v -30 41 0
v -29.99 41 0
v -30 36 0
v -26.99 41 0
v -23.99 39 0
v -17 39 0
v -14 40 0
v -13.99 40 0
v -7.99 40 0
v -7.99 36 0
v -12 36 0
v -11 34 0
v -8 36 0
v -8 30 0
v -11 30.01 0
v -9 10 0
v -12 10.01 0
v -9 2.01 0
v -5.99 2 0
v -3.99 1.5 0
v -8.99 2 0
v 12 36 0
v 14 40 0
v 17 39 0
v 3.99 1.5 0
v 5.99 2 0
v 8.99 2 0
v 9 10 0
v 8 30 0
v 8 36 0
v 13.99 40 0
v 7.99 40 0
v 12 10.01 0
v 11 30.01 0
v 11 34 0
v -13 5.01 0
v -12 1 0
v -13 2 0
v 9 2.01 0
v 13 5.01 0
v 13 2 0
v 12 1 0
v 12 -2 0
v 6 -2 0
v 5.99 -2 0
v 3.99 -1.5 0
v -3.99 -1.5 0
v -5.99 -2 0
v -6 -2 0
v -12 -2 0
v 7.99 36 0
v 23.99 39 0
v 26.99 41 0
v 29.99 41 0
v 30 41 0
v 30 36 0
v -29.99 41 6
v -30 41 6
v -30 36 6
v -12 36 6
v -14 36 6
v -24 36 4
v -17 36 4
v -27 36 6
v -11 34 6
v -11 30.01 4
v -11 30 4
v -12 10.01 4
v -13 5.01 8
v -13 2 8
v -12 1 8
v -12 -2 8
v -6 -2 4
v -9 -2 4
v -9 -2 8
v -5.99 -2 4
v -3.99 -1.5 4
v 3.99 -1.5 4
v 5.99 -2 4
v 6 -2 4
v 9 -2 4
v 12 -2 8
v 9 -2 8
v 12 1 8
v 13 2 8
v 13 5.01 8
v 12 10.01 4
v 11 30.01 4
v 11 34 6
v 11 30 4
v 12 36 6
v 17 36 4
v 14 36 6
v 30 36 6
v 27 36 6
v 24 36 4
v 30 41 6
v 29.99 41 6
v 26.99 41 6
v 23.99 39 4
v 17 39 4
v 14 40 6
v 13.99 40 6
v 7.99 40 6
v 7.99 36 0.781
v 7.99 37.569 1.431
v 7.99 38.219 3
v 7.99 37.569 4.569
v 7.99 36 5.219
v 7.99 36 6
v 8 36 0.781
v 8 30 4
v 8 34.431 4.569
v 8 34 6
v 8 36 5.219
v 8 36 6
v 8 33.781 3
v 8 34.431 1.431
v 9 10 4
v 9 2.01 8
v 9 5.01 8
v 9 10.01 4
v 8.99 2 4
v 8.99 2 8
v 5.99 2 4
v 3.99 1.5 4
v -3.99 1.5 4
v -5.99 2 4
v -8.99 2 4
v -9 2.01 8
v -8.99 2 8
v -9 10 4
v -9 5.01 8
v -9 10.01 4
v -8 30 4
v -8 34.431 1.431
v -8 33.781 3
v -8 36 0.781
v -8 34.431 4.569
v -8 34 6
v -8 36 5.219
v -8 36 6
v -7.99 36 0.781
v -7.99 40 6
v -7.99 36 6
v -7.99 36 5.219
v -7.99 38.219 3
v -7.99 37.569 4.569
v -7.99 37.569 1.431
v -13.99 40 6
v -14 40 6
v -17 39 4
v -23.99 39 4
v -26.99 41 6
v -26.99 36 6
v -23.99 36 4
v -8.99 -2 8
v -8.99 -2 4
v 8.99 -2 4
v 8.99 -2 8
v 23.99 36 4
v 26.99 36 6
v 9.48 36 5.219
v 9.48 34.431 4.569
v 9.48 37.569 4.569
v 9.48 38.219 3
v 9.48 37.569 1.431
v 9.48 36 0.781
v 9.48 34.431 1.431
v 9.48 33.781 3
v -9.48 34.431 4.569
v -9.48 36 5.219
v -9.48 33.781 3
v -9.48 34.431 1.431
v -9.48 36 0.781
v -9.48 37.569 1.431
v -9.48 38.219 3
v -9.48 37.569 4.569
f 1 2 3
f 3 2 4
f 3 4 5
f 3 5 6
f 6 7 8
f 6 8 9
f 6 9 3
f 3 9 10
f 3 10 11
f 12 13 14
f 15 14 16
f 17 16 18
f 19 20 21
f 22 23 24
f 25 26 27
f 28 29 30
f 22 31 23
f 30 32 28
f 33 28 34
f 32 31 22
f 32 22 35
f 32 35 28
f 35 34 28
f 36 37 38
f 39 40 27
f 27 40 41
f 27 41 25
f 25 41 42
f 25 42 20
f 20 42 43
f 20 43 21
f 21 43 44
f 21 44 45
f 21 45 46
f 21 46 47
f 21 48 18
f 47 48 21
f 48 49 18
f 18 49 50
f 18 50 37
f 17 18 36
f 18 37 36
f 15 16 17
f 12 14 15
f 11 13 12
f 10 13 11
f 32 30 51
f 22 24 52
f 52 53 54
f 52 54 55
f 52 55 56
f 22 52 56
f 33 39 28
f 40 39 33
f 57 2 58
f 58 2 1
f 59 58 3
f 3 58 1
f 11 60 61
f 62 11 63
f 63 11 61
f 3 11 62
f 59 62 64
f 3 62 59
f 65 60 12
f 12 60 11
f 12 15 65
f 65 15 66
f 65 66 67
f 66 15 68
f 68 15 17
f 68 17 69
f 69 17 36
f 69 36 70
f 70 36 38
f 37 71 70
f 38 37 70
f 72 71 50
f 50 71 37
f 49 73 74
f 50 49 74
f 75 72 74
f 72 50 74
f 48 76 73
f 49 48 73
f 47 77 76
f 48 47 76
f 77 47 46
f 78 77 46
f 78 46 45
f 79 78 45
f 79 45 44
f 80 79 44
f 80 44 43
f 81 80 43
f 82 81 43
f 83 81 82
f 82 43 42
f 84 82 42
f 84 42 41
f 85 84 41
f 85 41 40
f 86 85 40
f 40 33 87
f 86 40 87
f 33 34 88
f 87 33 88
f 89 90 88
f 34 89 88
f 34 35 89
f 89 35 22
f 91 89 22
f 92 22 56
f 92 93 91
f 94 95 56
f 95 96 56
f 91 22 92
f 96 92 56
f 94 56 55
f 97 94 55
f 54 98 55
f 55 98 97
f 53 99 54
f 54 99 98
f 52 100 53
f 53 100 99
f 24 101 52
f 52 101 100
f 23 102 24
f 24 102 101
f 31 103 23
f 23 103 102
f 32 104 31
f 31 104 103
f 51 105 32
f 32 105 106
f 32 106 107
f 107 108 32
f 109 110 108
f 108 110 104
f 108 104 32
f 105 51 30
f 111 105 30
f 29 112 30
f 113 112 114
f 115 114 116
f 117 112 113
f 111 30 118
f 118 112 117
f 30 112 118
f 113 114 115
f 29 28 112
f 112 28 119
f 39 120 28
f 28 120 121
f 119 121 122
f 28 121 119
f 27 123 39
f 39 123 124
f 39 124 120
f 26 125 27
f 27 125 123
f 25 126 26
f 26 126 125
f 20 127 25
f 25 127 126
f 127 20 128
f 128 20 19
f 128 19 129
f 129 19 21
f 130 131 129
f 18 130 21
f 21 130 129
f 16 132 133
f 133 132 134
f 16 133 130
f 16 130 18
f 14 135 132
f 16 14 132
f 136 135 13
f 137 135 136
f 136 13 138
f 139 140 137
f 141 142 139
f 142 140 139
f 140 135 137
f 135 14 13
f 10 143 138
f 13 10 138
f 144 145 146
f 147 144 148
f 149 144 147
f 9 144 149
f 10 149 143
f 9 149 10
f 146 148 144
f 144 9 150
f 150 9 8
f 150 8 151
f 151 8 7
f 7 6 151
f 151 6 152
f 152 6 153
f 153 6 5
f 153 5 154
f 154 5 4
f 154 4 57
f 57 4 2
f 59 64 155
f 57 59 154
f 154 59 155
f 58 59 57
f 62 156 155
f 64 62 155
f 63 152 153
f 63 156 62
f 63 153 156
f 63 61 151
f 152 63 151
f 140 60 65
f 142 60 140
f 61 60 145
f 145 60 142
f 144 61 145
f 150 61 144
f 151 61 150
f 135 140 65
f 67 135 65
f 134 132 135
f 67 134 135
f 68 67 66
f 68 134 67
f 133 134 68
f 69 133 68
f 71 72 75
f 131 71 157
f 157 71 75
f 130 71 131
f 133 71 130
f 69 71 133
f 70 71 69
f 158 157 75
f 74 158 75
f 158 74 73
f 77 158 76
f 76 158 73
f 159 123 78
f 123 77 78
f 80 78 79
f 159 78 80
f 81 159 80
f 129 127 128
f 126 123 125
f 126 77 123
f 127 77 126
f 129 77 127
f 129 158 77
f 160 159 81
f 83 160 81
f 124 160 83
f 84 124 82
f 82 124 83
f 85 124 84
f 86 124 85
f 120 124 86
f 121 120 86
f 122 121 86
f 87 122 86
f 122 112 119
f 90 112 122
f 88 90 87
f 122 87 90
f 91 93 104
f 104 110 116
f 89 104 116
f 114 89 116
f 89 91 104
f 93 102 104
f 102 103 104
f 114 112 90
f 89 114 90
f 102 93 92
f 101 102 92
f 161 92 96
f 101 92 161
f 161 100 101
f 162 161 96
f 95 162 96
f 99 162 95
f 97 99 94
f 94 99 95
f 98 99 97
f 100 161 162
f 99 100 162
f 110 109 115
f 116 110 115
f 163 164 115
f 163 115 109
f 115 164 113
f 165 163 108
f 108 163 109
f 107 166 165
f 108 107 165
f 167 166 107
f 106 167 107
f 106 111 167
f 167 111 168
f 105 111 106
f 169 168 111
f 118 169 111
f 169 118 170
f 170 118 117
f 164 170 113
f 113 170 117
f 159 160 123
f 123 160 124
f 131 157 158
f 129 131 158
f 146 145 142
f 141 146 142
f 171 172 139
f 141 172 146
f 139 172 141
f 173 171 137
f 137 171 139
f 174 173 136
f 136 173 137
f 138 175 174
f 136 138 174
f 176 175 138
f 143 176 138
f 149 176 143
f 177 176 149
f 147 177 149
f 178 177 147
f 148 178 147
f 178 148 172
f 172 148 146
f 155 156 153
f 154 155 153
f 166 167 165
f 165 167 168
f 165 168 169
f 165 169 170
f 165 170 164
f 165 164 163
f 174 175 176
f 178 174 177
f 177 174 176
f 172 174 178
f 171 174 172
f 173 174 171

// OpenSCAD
// file: beams.scad
/* 
 * openscad beams library
 * create complex openscads objects from frames which are defining beams
 * (constructed like a ship body or airplane hull)
 *
 * https://github.com/Stemer114/openscad_beams
 * http://www.thingiverse.com/Stemer114/designs
 * 
 *    Copyright (C) 2016 Stemer114 (stemer114@merunka.de)
 *
 *    This program is free software: you can redistribute it and/or modify
 *    it under the terms of the GNU General Public License as published by
 *    the Free Software Foundation, either version 3 of the License, or
 *    (at your option) any later version.
 *
 *    This program is distributed in the hope that it will be useful,
 *    but WITHOUT ANY WARRANTY; without even the implied warranty of
 *    MERCHANTABILITY or FITNESS FOR A PARTICULAR PURPOSE.  See the
 *    GNU General Public License for more details.
 *
 *    You should have received a copy of the GNU General Public License
 *    along with this program.  If not, see <http://www.gnu.org/licenses/>.
 *

 * Credits: 
 *          for some of the examples
 *          MCAD Library - Polyholes Copyright 2011 Nophead (of RepRap fame)
 *          It is licensed under the terms of Creative Commons Attribution 3.0 Unported.
 *          https://github.com/SolidCode/MCAD/blob/master/polyholes.scad
 *
 *          BeamsVersion, libEcho and code structure inspired by 
 *          OpenSCAD Parts Library by randyy is licensed under the GNU - LGPL license. 
 *          http://www.thingiverse.com/thing:6021
 *
 */

//**** house keeping
//we define these as functions to avoid assignment problems from caller modules
function BeamsVersion() = 1.0;  //library version
function ep()=0.01;  //epsilon environment to avoid non-manifold objects


//**** module definitions

// a single rectangular frame, usually very thin
// params: w - width of frame (x direction)
//         h - height of frame (z direction)
//         d - thickness of frame (y direction, usually very thin, e.g. 0.1mm)
//         o - offset vector from origin (probably best to use x and y offsets only here for starters)
//         r - rotation vector (probably best to use only z rotation here for starters)
//         vec - vector interface, used instead of the named params
//         the vector must use the following structure (example)
//           w  h  rotation    offset        thickness
//          [3, 4, [0, 0, 90], [0, -1.5, 0], ep ],   //start (front center)
//         there is no checking other than length checking to branch in the interface
//         so better make sure the vector conforms
//         the vector interface allows you to define a list of vectors in your source file
//         and supply them all at once to the beam module (see below)
//         this probably makes more sense if you look at some of the example files
module frame(
        w = 10,  //width
        h = 10,  //height
        r = [0, 0, 0],  //rotation vector
        o = [0, 0, 0],   //offset vector
        d = ep(),  //thickness (normally very thin)
        vec = [],  //vector, default none
        )
{
    if ( len(vec)==5 ) {
        //use vector interface
        translate( vec[3] )
            rotate( vec[2] )
            cube([ vec[0], vec[4], vec[1] ]);
    } else {
        //use single param interface
        translate(o)
            rotate(r)
            cube([w, d, h]);
    }  //end else
}  //end module

// a single beam consisting of two frames at either end, connected by a hull
// to disable hull, use no_hull=true (for debugging)
// beam uses the vector interface (see above in module frame)
module beam(
        frame1 = [10, 10, [0, 0, 0], [0, 0, 0], ep() ],
        frame2 = [10, 10, [0, 0, 0], [0, 20, 0], ep() ],
        no_hull = false,   
        )
{
    if ( no_hull ) {
        frame(vec=frame1);
        frame(vec=frame2);
    } else {
        hull() {
            frame(vec=frame1);
            frame(vec=frame2);
        }  //end hull
    }  //end else
}  //end module

// a beam consisting of 2 or more frames connected by hulls
// uses the vector interface (see above)
// see example scad files in library source to get an idea how to use this
module beam_multi(frames=[], no_hull=false )
{
    if ( len(frames)<2 ) {
        echo("WARNING: beam_multi: number of frames too small (must be at least 2): ", len(frames) );
    } else {
        for ( frame = [0:len(frames)-2] ) {
            beam( frames[frame], frames[frame+1], no_hull=no_hull );
        } //end for

    }
}

/*************************************************
 * interface 
*/

libEcho=true;
if (libEcho!=false){ 
	echo("****************************************************************  ");
    echo(" beams scad library loaded.");
    echo(" Version: ", BeamsVersion() );
    echo(" usage: - include beams.scad in your project dir,");
    echo("        - then add include <beams.scad> to your script ");
	echo("        - to turn off this header, place libEcho=false; in your script");
    echo("        - see examples scad files to some inspiration")
	echo("****************************************************************  ");
}
// main file
/*
 * example for beams library
 *   complex example (actually a tiltable stand for a barbie toy motorcycle..)
 *
 */

ep = 0.01;  //epsilon environment


//-----------------------------------------------------------------------------------
//libraries
//-----------------------------------------------------------------------------------
//beams lib (by me)
include <beams.scad>
//polyholes lib is in local dir
use <MCAD/polyholes.scad>

//*****************************
//flags for rendering components
//*****************************
show_mainbody = true;
disable_hull = false;
//show_eyecover = true;

//******************
//parametric settings
//******************
w = 4;  //arm width
h = 5.2;  //arm base height
hA = 10;  //height at start (point A)
hD = 30;  //height at nose bridge

//***** params
//(right) arm - base shape will be mirrored
arm_params = [ 
    //w   h   rotation   offset    thickness
    [3, 4, [0, 0, 90], [0, -1.5, 0], ep ],   //start (front center)
    [3, 4, [0, 0, 90], [4, -1.5, 0], ep ],   //end of smaller center part
    [4, 4, [0, 0, 90], [6, -2, 0], ep ],  
    [4, 4, [0, 0, 90], [9, -2, 0], ep ],     //end of center part
    [4, 8, [0, 0, 90], [9, -2, 0], ep ],     //begin of first corner (higher than center part)
    [4, 8, [0, 0, 90], [12, -2, 0], ep ],  
    [4, 8, [0, 0, 90], [9, -2, 0], ep ],   
    [4, 8, [0, 0, 0],  [9, 2, 0], ep ],      //begin of longitudinal member
    [4, 8, [0, 0, 0],  [9, 5, 0], ep ],      //ramp down to narrower/lower center part of longitudinal member
    [3, 4, [0, 0, 0],  [9, 10, 0], ep ],   
    [3, 4, [0, 0, 0],  [8, 30, 0], ep ],   
    [3, 6, [0, 0, 0],  [8, 34, 0], ep ],   
    [4, 6, [0, 0, 0],  [8, 36, 0], ep ],     //end of longitudinal member
    [4, 6, [0, 0, 90], [8, 36, 0], ep ],     //begin of rear cross member
    [4, 6, [0, 0, 90], [14, 36, 0], ep ],     //begin of rear cross member
    [3, 4, [0, 0, 90], [17, 36, 0], ep ],    //smaller center part of rear cross member
    [3, 4, [0, 0, 90], [24, 36, 0], ep ],    //begin of ramp up to end parts
    [5, 6, [0, 0, 90], [27, 36, 0], ep ],    //end part
    [5, 6, [0, 0, 90], [30, 36, 0], ep ],  
    ];

//cutout for magnet
P01 = 4.1;  //dia
P02 = 1.5;  //depth


//**********************
//**** component modules
//**********************

//half arm 
module arm()
{
    difference()
    {

        beam_multi(frames=arm_params, no_hull=disable_hull );

        //cutout for magnet
        translate([8-2*ep, 36, 3])
        rotate([0, 90, 0])
        polyhole(h=P02, d=P01);
    }
} //arm

//***************************************************
//**** main body (constructed from component modules)
//***************************************************
module main_body()
{

    difference()
    {
        //all structures that define the object
        union()
        {
            //right arm
            arm();

            //left arm (mirrored right arm)
            mirror([1, 0, 0]) arm();

        }

        //all structures that need to be cut away
        union()
        {

        }

    }  //difference

}  //end main_body


main_body();


// *****************
// * support modules
// *****************
